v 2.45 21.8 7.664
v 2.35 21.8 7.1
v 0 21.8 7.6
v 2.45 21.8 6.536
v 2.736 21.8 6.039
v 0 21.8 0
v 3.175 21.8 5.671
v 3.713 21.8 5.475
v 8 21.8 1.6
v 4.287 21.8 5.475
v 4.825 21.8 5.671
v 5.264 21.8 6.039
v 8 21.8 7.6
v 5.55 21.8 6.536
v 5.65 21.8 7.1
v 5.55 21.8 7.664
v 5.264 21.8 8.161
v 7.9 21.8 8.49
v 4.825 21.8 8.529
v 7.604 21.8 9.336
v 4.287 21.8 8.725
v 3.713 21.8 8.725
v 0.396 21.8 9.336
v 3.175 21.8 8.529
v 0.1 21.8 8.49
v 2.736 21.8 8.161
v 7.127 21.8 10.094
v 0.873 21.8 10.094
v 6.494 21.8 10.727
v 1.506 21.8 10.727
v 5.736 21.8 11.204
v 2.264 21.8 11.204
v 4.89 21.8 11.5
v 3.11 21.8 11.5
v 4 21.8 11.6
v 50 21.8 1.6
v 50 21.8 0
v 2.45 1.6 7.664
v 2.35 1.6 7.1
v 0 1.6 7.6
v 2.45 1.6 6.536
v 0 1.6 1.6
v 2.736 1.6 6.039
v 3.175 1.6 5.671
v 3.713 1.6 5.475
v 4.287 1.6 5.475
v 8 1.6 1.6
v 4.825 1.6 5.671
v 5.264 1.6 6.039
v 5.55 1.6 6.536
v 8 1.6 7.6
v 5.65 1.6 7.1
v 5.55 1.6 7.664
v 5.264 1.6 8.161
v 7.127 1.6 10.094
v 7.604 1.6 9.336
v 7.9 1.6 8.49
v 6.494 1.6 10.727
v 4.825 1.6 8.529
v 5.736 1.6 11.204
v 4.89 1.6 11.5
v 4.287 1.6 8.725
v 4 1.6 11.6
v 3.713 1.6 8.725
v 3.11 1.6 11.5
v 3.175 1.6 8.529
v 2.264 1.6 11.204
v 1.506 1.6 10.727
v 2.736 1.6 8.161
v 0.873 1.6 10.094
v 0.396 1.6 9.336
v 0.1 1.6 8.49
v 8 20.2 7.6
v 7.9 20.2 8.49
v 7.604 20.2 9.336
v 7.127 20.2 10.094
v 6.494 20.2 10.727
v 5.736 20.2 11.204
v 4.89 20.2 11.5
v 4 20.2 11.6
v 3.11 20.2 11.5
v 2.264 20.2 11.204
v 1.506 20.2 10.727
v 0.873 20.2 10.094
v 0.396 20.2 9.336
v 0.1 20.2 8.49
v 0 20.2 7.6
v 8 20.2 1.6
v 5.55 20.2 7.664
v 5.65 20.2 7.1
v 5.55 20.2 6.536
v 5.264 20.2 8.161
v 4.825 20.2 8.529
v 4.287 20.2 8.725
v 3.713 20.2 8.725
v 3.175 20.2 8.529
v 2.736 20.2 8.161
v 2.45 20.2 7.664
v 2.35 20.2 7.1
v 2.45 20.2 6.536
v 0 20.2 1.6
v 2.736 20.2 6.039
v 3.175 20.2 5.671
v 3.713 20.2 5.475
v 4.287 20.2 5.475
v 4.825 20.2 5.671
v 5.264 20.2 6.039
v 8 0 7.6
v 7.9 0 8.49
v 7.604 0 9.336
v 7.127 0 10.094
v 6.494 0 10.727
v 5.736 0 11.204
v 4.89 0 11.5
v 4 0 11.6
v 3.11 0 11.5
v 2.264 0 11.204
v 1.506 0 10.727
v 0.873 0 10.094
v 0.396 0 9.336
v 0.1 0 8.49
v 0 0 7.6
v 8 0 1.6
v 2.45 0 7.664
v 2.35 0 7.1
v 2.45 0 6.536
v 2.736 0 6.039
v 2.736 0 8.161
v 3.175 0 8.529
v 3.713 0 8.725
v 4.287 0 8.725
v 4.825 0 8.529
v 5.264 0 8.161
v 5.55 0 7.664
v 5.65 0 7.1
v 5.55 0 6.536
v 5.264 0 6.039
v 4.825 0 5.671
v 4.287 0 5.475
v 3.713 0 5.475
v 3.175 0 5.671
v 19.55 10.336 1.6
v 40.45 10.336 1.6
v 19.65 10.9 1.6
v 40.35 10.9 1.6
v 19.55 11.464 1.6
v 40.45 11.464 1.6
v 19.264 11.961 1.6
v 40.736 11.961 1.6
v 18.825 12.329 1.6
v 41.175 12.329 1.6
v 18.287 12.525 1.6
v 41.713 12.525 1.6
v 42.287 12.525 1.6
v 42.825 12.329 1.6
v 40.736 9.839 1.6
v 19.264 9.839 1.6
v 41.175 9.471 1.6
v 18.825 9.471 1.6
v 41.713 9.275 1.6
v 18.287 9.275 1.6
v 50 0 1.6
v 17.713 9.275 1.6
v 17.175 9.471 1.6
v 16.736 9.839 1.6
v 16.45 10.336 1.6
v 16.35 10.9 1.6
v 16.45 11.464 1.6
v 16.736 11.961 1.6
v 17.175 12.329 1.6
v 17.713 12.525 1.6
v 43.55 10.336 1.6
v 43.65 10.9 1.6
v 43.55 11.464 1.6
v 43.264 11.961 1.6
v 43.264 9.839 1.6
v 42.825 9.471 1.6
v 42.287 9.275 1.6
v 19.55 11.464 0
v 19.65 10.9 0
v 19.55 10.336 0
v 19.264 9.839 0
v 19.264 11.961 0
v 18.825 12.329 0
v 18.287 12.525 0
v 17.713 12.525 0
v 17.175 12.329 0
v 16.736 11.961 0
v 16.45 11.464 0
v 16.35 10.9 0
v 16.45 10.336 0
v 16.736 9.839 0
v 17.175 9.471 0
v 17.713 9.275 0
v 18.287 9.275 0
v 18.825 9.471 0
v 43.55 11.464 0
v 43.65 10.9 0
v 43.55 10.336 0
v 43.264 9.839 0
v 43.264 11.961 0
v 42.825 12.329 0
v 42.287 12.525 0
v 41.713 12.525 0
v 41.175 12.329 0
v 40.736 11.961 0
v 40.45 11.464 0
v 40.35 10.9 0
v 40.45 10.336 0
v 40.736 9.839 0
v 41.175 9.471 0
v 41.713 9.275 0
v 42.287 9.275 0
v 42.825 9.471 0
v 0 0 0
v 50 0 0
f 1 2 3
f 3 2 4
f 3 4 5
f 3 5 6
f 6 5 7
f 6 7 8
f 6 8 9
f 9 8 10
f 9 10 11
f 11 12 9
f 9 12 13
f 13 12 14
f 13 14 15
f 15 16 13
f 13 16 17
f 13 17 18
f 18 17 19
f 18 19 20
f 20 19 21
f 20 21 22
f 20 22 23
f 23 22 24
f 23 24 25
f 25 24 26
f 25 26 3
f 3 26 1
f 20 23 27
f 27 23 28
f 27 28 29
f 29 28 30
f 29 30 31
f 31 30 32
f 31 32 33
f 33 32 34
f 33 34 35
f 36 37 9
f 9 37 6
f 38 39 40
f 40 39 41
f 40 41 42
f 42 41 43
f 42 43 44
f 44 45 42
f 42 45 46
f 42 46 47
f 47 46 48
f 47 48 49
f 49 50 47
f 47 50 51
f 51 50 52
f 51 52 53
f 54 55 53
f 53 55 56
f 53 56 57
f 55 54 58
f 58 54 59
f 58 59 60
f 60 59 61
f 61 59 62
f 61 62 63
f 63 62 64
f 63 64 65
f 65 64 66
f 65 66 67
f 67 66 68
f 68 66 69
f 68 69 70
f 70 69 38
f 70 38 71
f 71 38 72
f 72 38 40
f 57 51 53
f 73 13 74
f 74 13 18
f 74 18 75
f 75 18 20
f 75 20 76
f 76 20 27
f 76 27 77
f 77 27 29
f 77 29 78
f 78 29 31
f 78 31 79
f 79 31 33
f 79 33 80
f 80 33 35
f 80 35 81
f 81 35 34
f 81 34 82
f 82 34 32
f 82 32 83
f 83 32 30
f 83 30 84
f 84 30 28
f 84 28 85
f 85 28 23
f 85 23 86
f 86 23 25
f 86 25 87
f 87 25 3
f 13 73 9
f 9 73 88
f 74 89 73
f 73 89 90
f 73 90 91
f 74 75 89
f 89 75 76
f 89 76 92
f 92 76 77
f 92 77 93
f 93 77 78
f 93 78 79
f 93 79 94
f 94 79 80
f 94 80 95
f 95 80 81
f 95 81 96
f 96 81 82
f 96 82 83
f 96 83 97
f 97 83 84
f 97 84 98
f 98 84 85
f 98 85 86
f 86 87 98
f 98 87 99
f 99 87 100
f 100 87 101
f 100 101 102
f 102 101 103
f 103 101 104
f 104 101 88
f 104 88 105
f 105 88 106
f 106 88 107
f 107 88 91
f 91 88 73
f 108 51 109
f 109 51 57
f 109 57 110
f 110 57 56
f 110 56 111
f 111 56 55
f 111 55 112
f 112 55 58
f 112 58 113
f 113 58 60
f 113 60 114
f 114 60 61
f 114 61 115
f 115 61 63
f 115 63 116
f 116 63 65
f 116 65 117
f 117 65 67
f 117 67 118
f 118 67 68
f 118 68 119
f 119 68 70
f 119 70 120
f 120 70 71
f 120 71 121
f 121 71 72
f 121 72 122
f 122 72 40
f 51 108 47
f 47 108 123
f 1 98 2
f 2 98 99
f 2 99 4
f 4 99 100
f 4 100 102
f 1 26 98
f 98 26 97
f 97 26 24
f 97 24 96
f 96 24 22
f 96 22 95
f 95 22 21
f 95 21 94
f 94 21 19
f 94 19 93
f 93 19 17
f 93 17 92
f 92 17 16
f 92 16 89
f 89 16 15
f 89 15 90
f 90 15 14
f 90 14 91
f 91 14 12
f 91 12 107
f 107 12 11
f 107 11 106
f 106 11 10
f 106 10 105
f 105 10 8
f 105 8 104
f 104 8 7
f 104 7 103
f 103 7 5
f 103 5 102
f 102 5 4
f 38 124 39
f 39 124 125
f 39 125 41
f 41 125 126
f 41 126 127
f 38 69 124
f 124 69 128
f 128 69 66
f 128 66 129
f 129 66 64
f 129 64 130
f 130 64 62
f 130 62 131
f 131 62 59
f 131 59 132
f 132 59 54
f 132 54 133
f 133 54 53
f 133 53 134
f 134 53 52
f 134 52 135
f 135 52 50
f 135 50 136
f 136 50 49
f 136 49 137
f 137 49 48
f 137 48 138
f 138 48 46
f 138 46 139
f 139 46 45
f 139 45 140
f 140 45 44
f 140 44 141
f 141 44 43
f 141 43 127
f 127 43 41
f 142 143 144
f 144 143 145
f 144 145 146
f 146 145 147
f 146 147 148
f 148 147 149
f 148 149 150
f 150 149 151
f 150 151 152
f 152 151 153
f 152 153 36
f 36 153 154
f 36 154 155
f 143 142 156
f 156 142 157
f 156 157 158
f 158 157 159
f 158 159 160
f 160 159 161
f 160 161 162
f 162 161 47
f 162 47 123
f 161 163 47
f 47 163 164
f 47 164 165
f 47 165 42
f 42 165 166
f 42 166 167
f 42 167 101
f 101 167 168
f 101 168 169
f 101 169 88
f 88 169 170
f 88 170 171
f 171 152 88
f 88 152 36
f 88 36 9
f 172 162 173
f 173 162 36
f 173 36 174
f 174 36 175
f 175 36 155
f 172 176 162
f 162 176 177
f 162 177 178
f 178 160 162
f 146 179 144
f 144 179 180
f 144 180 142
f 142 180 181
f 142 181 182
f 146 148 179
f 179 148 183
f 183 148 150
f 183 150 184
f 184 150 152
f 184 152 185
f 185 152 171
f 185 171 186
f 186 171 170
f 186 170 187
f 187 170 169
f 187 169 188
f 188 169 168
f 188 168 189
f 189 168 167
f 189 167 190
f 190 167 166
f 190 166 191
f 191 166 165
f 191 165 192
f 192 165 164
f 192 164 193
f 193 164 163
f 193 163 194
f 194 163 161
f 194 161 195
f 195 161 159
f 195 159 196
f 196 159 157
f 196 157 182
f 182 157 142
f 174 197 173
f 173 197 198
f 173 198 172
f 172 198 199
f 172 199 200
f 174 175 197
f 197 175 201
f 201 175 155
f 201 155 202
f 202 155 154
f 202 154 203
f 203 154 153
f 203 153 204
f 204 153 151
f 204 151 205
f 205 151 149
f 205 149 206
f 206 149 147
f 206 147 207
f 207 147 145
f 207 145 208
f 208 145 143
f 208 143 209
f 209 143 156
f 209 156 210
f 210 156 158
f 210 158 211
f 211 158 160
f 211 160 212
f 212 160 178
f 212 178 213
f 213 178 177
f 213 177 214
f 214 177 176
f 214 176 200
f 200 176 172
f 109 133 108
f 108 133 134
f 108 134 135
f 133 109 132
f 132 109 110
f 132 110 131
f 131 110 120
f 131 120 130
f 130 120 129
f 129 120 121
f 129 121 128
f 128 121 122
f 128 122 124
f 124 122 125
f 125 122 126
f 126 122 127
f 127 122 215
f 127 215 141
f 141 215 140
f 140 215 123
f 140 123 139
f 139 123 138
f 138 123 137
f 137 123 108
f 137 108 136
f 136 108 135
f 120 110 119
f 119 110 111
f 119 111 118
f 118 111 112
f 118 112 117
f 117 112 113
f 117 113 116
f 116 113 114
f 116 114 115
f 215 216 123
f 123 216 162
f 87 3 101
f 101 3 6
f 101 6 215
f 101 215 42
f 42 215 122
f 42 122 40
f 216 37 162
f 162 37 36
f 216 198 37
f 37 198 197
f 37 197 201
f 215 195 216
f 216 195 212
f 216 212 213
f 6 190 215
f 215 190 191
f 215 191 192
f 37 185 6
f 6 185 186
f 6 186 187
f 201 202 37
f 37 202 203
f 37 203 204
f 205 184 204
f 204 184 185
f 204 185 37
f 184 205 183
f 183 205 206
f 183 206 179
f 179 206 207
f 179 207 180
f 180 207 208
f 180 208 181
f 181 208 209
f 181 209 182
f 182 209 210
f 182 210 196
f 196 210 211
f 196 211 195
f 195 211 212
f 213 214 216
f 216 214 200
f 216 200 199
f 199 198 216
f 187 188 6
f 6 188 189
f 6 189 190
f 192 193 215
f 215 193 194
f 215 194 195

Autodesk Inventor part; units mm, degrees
ref_plane "YZ Plane" through (0, 0, 0) normal (1, 0, 0) x (0, 1, 0)
ref_plane "XZ Plane" through (0, 0, 0) normal (0, 1, 0) x (-1, 0, 0)
ref_plane "XY Plane" through (0, 0, 0) normal (0, 0, 1) x (1, 0, 0)
sketch "Sketch1" plane through (0, 0, 0) normal (0, 0, 1) x (1, 0, 0)
  line L0 (0, 0) -> (50, 0)
  line L1 (50, 0) -> (50, 21.8)
  line L2 (50, 21.8) -> (0, 21.8)
  line L3 (0, 21.8) -> (0, 0)
  circle A0 centre (42, 10.9) radius 1.65
  circle A1 centre (18, 10.9) radius 1.65
  dimension "d0" = 50
  dimension "d1" = 21.8
  dimension "d15" = 3.3
  dimension "d16" = 3.3
  dimension "d17" = 24
  dimension "d18" = 8
  dimension "d19" = 10.9
  dimension "d20" = 10.9
extrude "Extrusion1" add sketch "Sketch1" along normal blind 1.6
sketch "Sketch2" plane through (0, 0, 1.6) normal (0, 0, 1) x (1, 0, 0)
  line L0 (0, 21.8) -> (0, 0) projected
  line L1 (0, 0) -> (8, 0)
  line L2 (8, 0) -> (8, 1.6)
  line L3 (8, 1.6) -> (0, 1.6)
  line L4 (0, 1.6) -> (0, 0)
  line L5 (50, 21.8) -> (0, 21.8) projected
  line L6 (0, 21.8) -> (8, 21.8)
  line L7 (8, 21.8) -> (8, 20.2)
  line L8 (8, 20.2) -> (0, 20.2)
  line L9 (0, 20.2) -> (0, 21.8)
  point P0 (0, 20.2)
  dimension "d4" = 8
  dimension "d5" = 1.6
  dimension "d6" = 8
  dimension "d7" = 1.6
extrude "Extrusion2" add sketch "Sketch2" along normal blind 10
sketch "Sketch3" plane through (0, 0, 0) normal (0, -1, 0) x (1, 0, 0)
  circle A0 centre (4, 7.1) radius 1.65
  line L0 (0, 0) -> (0, 11.6) projected
  line L1 (0, 11.6) -> (8, 11.6) projected
  line L2 (0, 0) -> (50, 0) projected
  dimension "d10" = 3.3
  dimension "d11" = 4
  dimension "d21" = 7.1
extrude "Extrusion3" cut sketch "Sketch3" against normal blind 25
fillet "Fillet1" radius 4 4 edges at (8, 0.8, 11.6) (8, 21, 11.6) (0, 0.8, 11.6) (0, 21, 11.6)
properties part number "Base"
